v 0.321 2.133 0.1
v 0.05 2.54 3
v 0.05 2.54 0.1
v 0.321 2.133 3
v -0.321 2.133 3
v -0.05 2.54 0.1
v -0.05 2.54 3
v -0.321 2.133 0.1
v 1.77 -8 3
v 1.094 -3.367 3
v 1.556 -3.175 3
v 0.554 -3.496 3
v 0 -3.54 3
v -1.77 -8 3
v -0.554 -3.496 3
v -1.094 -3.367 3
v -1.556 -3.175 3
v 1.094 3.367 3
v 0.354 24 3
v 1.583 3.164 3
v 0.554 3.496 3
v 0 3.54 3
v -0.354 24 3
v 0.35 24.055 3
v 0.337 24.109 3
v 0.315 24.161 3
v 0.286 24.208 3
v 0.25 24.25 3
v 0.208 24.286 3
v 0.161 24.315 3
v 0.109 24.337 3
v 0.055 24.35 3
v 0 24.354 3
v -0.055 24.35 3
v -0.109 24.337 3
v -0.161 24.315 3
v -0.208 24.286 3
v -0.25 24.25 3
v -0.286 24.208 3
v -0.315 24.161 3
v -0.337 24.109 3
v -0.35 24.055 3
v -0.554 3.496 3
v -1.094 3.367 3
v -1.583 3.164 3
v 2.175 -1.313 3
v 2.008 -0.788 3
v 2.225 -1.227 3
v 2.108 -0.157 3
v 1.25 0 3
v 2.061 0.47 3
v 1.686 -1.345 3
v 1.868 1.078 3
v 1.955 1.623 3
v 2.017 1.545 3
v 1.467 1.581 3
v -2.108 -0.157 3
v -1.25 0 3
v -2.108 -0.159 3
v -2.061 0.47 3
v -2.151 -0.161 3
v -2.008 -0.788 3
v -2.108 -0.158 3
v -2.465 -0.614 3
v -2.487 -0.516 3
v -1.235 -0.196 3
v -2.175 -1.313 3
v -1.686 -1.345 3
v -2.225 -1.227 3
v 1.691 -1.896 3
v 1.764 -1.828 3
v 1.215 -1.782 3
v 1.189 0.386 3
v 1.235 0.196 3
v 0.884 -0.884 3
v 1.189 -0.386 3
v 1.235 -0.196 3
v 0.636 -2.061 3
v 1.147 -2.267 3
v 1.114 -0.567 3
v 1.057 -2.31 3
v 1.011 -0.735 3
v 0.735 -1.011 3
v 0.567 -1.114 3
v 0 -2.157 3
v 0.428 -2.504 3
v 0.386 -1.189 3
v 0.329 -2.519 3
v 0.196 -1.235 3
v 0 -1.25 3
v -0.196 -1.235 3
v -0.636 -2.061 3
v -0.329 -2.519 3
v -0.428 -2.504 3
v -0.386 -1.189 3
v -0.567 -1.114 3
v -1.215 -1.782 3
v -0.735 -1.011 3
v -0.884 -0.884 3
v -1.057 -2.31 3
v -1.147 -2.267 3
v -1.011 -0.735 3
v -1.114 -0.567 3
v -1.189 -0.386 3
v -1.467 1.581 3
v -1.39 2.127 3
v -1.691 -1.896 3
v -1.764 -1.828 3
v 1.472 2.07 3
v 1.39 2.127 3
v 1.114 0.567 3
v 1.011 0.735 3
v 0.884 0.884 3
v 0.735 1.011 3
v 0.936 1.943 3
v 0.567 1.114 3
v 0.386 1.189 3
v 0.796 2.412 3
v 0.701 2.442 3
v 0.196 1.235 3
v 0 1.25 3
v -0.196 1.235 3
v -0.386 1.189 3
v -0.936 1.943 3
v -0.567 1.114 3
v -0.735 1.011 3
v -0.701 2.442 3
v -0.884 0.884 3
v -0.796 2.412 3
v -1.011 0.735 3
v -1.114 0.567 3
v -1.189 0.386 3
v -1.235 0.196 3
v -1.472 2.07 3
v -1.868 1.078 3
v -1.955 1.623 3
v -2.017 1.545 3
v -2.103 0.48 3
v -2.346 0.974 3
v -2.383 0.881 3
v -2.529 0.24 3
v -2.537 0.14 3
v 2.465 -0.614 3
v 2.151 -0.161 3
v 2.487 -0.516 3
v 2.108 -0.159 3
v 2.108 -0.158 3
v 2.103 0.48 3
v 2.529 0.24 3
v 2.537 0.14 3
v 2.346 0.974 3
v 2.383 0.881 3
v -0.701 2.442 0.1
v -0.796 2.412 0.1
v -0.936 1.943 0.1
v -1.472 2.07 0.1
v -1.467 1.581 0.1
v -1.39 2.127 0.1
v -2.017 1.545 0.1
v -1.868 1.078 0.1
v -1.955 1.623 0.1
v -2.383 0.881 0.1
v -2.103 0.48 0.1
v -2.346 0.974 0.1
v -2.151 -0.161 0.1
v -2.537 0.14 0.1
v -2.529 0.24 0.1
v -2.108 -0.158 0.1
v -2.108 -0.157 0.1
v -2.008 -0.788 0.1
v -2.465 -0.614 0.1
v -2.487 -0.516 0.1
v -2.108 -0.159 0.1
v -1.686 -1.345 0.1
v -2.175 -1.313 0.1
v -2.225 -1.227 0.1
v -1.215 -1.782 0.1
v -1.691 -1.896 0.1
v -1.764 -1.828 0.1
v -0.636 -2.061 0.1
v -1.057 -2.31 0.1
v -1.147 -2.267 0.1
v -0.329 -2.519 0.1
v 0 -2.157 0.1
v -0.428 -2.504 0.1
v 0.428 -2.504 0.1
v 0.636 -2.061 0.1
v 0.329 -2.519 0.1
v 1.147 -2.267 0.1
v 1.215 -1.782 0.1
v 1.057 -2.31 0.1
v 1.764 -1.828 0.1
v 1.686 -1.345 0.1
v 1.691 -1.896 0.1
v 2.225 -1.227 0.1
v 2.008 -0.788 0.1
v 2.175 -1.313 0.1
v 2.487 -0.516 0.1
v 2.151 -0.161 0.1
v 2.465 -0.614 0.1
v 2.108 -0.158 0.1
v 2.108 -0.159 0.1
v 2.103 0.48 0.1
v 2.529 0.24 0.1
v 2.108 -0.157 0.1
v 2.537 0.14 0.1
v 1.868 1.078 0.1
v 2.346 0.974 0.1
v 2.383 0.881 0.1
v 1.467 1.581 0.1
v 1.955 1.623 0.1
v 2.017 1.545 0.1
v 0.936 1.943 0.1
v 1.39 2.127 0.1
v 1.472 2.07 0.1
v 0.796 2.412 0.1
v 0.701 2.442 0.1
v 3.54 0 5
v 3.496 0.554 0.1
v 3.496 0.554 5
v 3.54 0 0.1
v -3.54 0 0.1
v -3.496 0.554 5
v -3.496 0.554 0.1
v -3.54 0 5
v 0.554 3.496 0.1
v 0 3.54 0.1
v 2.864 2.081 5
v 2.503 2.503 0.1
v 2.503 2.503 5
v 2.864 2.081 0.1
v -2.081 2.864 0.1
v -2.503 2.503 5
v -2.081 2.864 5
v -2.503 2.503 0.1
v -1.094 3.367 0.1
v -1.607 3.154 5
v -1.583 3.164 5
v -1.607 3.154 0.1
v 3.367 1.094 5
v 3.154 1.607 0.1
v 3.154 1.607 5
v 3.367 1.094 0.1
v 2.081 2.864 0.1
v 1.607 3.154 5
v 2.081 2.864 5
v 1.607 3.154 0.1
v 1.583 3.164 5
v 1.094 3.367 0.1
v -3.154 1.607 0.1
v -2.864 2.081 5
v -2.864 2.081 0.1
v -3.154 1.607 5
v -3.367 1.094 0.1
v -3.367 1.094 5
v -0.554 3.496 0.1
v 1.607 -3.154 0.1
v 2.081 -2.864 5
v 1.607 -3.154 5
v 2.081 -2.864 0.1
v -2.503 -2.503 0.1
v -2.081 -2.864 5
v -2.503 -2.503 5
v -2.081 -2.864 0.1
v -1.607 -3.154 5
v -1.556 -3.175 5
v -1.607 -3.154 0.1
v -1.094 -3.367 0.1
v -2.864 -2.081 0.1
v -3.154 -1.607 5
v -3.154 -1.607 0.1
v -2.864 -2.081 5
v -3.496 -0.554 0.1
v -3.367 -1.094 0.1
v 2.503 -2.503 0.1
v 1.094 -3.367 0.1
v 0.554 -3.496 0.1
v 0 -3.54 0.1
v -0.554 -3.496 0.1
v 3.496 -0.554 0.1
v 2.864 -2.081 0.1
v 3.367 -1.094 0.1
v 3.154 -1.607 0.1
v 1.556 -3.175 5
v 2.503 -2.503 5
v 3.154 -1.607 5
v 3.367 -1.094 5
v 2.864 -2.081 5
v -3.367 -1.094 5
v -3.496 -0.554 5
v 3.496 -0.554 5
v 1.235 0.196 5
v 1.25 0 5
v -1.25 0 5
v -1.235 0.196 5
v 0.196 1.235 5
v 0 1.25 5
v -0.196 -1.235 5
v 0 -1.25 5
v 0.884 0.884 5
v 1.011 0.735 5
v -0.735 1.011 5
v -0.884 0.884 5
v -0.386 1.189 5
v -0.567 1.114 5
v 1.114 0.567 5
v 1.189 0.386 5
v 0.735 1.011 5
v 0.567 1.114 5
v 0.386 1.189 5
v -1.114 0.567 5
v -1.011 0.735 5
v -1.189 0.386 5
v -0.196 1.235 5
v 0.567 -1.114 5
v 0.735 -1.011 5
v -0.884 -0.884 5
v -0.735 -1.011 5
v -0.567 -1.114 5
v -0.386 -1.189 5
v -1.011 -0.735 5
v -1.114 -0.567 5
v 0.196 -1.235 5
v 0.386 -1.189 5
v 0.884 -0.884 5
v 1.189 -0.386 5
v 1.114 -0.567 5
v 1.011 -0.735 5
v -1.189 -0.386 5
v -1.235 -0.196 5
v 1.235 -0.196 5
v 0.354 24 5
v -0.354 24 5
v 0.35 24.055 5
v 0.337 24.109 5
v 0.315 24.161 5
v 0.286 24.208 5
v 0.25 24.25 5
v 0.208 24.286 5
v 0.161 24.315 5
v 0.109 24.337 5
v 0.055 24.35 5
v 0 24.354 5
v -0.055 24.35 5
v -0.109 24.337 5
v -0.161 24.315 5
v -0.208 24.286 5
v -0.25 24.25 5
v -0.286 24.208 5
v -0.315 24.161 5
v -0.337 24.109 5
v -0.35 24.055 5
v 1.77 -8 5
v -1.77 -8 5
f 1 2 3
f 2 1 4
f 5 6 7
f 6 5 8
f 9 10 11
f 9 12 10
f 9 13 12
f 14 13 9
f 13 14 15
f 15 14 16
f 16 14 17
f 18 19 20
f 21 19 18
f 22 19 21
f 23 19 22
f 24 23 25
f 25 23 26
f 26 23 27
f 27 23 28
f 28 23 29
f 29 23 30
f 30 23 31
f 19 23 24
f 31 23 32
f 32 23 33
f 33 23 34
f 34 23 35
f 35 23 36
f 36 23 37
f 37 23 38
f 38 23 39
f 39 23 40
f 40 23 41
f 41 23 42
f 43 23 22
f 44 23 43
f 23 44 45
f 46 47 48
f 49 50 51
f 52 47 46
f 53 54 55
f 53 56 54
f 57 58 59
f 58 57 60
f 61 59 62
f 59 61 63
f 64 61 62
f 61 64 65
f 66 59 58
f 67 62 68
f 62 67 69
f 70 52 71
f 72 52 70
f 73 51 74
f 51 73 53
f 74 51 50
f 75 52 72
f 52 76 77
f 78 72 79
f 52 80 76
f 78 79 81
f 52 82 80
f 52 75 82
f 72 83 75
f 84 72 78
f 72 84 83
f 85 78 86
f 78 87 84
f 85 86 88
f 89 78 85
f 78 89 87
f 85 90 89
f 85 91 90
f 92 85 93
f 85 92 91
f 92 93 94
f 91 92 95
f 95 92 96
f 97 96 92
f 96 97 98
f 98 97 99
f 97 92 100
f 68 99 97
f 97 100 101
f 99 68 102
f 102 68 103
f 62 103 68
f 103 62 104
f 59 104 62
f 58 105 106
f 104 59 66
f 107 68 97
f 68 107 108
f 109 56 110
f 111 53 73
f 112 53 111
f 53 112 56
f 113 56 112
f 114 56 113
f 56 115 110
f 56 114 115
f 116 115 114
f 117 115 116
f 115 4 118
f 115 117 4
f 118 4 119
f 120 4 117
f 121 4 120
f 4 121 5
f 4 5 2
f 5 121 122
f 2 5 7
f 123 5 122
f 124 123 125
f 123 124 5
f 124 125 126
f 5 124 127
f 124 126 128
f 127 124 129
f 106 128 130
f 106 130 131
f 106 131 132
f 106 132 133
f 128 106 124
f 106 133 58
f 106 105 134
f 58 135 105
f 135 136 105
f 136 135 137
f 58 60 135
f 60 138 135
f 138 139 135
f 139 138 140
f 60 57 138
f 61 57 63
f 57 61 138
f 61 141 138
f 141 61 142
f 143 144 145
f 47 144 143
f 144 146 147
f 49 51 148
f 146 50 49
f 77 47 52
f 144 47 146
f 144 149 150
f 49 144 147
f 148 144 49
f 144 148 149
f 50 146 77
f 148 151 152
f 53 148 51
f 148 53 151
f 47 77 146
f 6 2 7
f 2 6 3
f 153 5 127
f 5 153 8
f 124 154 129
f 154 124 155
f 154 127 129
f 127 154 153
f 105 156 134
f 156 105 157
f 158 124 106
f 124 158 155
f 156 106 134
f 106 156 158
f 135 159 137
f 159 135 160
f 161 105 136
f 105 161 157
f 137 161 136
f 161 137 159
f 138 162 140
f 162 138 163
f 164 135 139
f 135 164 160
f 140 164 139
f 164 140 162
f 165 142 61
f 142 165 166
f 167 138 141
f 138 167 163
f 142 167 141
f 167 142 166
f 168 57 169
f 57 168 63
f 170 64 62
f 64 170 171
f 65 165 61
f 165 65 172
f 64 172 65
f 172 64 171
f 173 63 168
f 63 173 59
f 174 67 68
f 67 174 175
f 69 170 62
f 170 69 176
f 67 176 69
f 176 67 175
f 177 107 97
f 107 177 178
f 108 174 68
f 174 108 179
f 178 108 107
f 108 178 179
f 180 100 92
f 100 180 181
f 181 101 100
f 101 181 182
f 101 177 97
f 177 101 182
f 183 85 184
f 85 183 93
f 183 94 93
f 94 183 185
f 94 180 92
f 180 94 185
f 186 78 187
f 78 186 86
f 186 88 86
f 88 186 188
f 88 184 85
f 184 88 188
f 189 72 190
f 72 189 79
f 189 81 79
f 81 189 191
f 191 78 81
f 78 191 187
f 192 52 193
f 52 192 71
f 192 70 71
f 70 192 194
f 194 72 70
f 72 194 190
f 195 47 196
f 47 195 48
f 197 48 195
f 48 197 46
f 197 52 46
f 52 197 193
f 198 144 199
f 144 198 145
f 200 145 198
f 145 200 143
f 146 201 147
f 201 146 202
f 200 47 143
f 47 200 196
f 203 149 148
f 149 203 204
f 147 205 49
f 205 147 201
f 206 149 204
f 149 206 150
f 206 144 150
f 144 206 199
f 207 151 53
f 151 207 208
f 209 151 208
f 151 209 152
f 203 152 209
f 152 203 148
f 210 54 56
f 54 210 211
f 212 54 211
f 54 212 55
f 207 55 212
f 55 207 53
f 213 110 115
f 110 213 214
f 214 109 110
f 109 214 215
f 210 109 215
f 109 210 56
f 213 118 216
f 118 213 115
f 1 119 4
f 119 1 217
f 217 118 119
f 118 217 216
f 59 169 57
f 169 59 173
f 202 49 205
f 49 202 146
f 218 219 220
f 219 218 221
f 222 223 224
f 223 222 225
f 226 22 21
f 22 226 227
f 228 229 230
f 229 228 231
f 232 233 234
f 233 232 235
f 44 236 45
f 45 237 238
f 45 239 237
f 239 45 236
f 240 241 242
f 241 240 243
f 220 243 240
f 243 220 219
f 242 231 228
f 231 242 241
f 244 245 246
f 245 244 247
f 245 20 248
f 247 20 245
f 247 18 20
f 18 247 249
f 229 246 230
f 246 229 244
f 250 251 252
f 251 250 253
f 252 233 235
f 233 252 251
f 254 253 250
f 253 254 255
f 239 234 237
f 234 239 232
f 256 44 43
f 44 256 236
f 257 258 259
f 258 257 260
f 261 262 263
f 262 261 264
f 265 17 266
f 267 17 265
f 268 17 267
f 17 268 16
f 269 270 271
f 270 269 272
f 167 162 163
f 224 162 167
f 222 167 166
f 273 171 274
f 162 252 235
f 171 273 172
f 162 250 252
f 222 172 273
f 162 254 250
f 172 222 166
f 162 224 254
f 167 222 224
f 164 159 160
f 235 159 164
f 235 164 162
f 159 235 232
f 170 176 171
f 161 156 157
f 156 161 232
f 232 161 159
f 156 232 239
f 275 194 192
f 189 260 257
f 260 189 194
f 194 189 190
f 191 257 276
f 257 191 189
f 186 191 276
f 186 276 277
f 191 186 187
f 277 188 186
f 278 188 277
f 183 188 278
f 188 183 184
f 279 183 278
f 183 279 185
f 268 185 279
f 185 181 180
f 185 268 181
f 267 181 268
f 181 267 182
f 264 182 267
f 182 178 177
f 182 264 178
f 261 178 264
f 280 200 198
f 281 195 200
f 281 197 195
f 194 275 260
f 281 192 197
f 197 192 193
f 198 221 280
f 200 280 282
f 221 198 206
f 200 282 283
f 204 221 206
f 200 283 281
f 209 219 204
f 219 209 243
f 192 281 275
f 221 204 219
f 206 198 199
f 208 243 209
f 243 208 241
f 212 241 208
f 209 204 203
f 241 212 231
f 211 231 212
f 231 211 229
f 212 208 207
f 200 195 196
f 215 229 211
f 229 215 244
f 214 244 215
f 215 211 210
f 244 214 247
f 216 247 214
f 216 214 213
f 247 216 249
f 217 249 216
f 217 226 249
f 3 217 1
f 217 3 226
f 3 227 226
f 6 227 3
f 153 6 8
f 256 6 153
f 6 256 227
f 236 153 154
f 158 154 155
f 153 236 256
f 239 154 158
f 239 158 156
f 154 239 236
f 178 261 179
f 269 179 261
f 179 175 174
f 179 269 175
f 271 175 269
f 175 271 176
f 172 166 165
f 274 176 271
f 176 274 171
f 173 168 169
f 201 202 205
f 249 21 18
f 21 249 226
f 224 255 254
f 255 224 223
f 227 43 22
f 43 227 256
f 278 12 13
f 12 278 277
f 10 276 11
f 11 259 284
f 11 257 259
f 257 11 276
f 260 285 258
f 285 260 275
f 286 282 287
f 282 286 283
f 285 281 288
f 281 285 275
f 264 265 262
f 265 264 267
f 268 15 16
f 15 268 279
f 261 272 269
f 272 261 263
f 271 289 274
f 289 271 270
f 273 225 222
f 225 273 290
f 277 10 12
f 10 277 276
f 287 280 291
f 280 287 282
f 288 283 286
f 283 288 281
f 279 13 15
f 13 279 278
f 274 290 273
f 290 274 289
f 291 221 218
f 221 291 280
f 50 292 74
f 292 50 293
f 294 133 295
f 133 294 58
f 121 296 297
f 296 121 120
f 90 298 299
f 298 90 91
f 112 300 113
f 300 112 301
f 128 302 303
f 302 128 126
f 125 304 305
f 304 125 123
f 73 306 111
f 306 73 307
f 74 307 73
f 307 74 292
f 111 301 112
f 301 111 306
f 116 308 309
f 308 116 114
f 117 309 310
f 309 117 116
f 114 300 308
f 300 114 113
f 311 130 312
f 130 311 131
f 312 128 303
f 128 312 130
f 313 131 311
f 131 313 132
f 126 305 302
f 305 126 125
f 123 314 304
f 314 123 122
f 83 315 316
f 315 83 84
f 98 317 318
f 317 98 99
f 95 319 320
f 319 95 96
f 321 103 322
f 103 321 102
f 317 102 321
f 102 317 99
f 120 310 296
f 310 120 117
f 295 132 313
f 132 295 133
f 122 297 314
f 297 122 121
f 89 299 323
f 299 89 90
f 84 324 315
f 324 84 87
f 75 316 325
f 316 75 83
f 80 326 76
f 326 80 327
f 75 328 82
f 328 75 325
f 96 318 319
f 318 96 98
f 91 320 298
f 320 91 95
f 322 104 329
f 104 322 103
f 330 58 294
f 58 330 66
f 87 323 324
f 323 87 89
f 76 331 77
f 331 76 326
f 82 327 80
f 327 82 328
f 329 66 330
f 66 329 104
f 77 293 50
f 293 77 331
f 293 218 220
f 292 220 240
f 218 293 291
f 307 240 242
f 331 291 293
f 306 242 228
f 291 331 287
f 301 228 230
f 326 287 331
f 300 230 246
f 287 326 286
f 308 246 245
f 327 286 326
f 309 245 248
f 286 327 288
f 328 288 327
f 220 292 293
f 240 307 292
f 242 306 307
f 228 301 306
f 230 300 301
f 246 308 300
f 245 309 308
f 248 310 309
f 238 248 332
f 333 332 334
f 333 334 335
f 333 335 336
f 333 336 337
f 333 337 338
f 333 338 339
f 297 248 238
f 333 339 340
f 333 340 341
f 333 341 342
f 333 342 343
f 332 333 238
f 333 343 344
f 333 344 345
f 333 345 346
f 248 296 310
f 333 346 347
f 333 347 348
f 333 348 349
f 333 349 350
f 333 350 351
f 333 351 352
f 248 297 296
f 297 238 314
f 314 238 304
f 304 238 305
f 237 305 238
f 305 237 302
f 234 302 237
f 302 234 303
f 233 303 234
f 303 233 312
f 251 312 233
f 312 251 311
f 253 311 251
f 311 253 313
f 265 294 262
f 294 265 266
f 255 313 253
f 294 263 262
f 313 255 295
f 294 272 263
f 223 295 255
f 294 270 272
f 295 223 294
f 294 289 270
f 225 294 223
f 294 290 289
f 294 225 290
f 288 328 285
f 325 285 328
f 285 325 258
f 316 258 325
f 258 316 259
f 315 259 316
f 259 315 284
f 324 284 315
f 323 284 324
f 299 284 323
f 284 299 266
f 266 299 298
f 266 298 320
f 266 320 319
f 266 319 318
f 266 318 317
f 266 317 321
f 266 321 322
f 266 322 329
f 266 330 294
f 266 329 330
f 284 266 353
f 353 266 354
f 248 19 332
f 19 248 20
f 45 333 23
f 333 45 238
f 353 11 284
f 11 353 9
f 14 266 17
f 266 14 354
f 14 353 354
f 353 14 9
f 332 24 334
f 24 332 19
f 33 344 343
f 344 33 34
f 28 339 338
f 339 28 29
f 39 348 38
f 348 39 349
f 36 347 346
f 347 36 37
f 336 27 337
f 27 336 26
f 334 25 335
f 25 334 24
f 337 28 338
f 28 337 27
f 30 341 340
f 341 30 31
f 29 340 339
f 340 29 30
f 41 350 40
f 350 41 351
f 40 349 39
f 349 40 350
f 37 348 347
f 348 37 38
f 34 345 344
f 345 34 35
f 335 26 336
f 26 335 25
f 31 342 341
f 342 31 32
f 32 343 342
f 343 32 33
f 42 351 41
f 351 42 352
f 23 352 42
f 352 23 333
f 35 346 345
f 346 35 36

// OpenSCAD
/**
 *  Parametric servo arm generator for OpenScad
 *  Générateur de palonnier de servo pour OpenScad
 *
 *  Copyright (c) 2012 Charles Rincheval.  All rights reserved.
 *
 *  This library is free software; you can redistribute it and/or
 *  modify it under the terms of the GNU Lesser General Public
 *  License as published by the Free Software Foundation; either
 *  version 2.1 of the License, or (at your option) any later version.
 *
 *  This library is distributed in the hope that it will be useful,
 *  but WITHOUT ANY WARRANTY; without even the implied warranty of
 *  MERCHANTABILITY or FITNESS FOR A PARTICULAR PURPOSE.  See the GNU
 *  Lesser General Public License for more details.
 *
 *  You should have received a copy of the GNU Lesser General Public
 *  License along with this library; if not, write to the Free Software
 *  Foundation, Inc., 51 Franklin St, Fifth Floor, Boston, MA  02110-1301  USA
 *
 *  Last update :
 *  https://github.com/hugokernel/OpenSCAD_ServoArms
 *
 *  http://www.digitalspirit.org/
 */
 
 //https://www.rcgroups.com/forums/showpost.php?p=13441675&postcount=2
 
$fn = 40;

/**
 *  Clear between arm head and servo head
 *  With PLA material, use clear : 0.3, for ABS, use 0.2
 */
SERVO_HEAD_CLEAR = 0.2;

/**
 *  Head / Tooth parameters
 *  Futaba 3F Standard Spline
 *  http://www.servocity.com/html/futaba_servo_splines.html
 *
 *  First array (head related) :
 *  0. Head external diameter
 *  1. Head heigth
 *  2. Head thickness
 *  3. Head screw diameter
 *
 *  Second array (tooth related) :
 *  0. Tooth count
 *  1. Tooth height
 *  2. Tooth length
 *  3. Tooth width
 */
FUTABA_3F_SPLINE = [
  [5.92, 4, 1.1, 2.5],
  [25, 0.3, 0.7, 0.1]
];
// White plastic head
MICRO_SG90_SPLINE = [
  [4.68, 3, 1.2, 2.5],
  [21, .45, 0.7, 0.1]
];
// Metal head
MICRO_MG90S_SPLINE = [
  [4.68, 4, 1.0, 2.5],
  [20, .8, 0.7, 0.1]
];
// White plastic head, continuous rotation
MICRO_FS90R_SPLINE = [
  [4.68, 3, 1.2, 2.5],
  [21, .45, 0.7, 0.1]
];

// rotate([0, 180, 0])
// Config, Length, Number of Arms
servo_horn(MICRO_SG90_SPLINE, [24, 1]);


/**
 *  Servo horn
 *  - Head / Tooth parameters
 *  - Arms params (length and count)
 */
module servo_horn(params, arms) {

  head = params[0];
  tooth = params[1];

  head_diameter = head[0];
  head_height = head[1];
  head_thickness = head[2];
  head_screw_diameter = head[3];

  tooth_length = tooth[2];
  tooth_width = tooth[3];

  arm_length = arms[0];
  arm_count = arms[1];

  // Head
  difference() {
    translate([0, 0, 0.1]) {
      cylinder(r = head_diameter / 2 + head_thickness, h = head_height + 1);
    }
    cylinder(r = head_screw_diameter / 2, h = 10);
    servo_head(params);
  }
  // Arm
  translate([0, 0, head_height]) {
    for (i = [0 : arm_count - 1]) {
      rotate([0, 0, i * (360 / arm_count)]) {
        servo_arm(arm_length, head_diameter + head_thickness * 2, head_height, 2);
      }
    }
  }


  /**
   *  Servo head submodule
   */
  module servo_head(params, clear = SERVO_HEAD_CLEAR) {

    head = params[0];
    tooth = params[1];

    head_diameter = head[0];
    head_height = head[1];

    tooth_count = tooth[0];
    tooth_height = tooth[1];
    tooth_length = tooth[2];
    tooth_width = tooth[3];

    % cylinder(r = head_diameter / 2, h = head_height + 1);

    cylinder(r = head_diameter / 2 - tooth_height + 0.03 + clear, h = head_height);

    for (i = [0 : tooth_count]) {
      rotate([0, 0, i * (360 / tooth_count)]) {
        translate([0, head_diameter / 2 - tooth_height + clear, 0]) {
          servo_head_tooth(tooth_length, tooth_width, tooth_height, head_height);
        }
      }
    }
    
     /**
     *  Tooth
     *
     *  |<-w->|
     *  |_____|___
     *  /   \  ^h
     *  _/     \_v
     *   |<--l-->|
     *
     *  - tooth length (l)
     *  - tooth width (w)
     *  - tooth height (h)
     *  - height
     *
     */
    module servo_head_tooth(length, width, height, head_height) {
      linear_extrude(height = head_height) {
        polygon([[-length / 2, 0], [-width / 2, height], [width / 2, height], [length / 2,0]]);
      }
    }
  }

  /**
   *  Servo arm
   *  - length is from center to last hole
   */
  // hole_count had been hard-coded as 1 previously
  module servo_arm(tooth_length, tooth_width, reinforcement_height, head_height, hole_count = 0) {
    arm_screw_diameter = 2;

    // This had been hard-coded at 2 previously
    arm_start_width = 4;
    // This value was hard-coded at 3 previously
    reduction_factor= 20;
    tail_length = 8;

    difference() {
      union() {
        // The start of the arm above the servo shaft
        cylinder(r = tooth_width / 2, h = head_height);

        // The main shaft of the arm
        linear_extrude(height = head_height) {
          polygon([
            [-tooth_width / arm_start_width, 0], [-tooth_width / reduction_factor, tooth_length],
            [tooth_width / reduction_factor, tooth_length], [tooth_width / arm_start_width, 0]
          ]);
        }

        // The "tail" shaft of the arm
        linear_extrude(height = head_height) {
          polygon([
            [-tooth_width / arm_start_width, -tail_length], [-tooth_width / reduction_factor, tooth_length],
            [tooth_width / reduction_factor, tooth_length], [tooth_width / arm_start_width, -tail_length]
          ]);
        }

        // The tip of the arm
        translate([0, tooth_length, 0]) {
          cylinder(r = tooth_width / reduction_factor, h = head_height);
        }
        
/*
        // Arm underside support
        if (tooth_length >= 12) {
          translate([-head_height / 2 + 2, head_diameter / 2 + head_thickness - 0.5, -4]) {
            rotate([90, 0, 0]) {
              rotate([0, -90, 0]) {
                linear_extrude(height = head_height) {
                  polygon([
                    [-tooth_length / 1.7, 4], [0, 4], [0, - reinforcement_height + 5],
                    [-2, - reinforcement_height + 5]
                  ]);
                }
              }
            }
          }
        }
        */
      }

      // Add holes along the shaft
      if(hole_count > 0) {
        for (i = [0 : hole_count - 1]) {
          //translate([0, length - (length / hole_count * i), -1]) {
          translate([0, tooth_length - (4 * i), -1]) {
            cylinder(r = arm_screw_diameter / 2, h = 10);
          }
        }
      }
      cylinder(r = head_screw_diameter / 2, h = 10);
    }
  }
}

module reference_horn() {
  // A "standard" servo horn, for comparison
  translate([8,0,0])
    translate([6.9/2+0.02,-6.9/2-0.02,-4])
      rotate([180,0,90])
        color("red")
          import("SG90_Servo_Horn-1.stl");
}
